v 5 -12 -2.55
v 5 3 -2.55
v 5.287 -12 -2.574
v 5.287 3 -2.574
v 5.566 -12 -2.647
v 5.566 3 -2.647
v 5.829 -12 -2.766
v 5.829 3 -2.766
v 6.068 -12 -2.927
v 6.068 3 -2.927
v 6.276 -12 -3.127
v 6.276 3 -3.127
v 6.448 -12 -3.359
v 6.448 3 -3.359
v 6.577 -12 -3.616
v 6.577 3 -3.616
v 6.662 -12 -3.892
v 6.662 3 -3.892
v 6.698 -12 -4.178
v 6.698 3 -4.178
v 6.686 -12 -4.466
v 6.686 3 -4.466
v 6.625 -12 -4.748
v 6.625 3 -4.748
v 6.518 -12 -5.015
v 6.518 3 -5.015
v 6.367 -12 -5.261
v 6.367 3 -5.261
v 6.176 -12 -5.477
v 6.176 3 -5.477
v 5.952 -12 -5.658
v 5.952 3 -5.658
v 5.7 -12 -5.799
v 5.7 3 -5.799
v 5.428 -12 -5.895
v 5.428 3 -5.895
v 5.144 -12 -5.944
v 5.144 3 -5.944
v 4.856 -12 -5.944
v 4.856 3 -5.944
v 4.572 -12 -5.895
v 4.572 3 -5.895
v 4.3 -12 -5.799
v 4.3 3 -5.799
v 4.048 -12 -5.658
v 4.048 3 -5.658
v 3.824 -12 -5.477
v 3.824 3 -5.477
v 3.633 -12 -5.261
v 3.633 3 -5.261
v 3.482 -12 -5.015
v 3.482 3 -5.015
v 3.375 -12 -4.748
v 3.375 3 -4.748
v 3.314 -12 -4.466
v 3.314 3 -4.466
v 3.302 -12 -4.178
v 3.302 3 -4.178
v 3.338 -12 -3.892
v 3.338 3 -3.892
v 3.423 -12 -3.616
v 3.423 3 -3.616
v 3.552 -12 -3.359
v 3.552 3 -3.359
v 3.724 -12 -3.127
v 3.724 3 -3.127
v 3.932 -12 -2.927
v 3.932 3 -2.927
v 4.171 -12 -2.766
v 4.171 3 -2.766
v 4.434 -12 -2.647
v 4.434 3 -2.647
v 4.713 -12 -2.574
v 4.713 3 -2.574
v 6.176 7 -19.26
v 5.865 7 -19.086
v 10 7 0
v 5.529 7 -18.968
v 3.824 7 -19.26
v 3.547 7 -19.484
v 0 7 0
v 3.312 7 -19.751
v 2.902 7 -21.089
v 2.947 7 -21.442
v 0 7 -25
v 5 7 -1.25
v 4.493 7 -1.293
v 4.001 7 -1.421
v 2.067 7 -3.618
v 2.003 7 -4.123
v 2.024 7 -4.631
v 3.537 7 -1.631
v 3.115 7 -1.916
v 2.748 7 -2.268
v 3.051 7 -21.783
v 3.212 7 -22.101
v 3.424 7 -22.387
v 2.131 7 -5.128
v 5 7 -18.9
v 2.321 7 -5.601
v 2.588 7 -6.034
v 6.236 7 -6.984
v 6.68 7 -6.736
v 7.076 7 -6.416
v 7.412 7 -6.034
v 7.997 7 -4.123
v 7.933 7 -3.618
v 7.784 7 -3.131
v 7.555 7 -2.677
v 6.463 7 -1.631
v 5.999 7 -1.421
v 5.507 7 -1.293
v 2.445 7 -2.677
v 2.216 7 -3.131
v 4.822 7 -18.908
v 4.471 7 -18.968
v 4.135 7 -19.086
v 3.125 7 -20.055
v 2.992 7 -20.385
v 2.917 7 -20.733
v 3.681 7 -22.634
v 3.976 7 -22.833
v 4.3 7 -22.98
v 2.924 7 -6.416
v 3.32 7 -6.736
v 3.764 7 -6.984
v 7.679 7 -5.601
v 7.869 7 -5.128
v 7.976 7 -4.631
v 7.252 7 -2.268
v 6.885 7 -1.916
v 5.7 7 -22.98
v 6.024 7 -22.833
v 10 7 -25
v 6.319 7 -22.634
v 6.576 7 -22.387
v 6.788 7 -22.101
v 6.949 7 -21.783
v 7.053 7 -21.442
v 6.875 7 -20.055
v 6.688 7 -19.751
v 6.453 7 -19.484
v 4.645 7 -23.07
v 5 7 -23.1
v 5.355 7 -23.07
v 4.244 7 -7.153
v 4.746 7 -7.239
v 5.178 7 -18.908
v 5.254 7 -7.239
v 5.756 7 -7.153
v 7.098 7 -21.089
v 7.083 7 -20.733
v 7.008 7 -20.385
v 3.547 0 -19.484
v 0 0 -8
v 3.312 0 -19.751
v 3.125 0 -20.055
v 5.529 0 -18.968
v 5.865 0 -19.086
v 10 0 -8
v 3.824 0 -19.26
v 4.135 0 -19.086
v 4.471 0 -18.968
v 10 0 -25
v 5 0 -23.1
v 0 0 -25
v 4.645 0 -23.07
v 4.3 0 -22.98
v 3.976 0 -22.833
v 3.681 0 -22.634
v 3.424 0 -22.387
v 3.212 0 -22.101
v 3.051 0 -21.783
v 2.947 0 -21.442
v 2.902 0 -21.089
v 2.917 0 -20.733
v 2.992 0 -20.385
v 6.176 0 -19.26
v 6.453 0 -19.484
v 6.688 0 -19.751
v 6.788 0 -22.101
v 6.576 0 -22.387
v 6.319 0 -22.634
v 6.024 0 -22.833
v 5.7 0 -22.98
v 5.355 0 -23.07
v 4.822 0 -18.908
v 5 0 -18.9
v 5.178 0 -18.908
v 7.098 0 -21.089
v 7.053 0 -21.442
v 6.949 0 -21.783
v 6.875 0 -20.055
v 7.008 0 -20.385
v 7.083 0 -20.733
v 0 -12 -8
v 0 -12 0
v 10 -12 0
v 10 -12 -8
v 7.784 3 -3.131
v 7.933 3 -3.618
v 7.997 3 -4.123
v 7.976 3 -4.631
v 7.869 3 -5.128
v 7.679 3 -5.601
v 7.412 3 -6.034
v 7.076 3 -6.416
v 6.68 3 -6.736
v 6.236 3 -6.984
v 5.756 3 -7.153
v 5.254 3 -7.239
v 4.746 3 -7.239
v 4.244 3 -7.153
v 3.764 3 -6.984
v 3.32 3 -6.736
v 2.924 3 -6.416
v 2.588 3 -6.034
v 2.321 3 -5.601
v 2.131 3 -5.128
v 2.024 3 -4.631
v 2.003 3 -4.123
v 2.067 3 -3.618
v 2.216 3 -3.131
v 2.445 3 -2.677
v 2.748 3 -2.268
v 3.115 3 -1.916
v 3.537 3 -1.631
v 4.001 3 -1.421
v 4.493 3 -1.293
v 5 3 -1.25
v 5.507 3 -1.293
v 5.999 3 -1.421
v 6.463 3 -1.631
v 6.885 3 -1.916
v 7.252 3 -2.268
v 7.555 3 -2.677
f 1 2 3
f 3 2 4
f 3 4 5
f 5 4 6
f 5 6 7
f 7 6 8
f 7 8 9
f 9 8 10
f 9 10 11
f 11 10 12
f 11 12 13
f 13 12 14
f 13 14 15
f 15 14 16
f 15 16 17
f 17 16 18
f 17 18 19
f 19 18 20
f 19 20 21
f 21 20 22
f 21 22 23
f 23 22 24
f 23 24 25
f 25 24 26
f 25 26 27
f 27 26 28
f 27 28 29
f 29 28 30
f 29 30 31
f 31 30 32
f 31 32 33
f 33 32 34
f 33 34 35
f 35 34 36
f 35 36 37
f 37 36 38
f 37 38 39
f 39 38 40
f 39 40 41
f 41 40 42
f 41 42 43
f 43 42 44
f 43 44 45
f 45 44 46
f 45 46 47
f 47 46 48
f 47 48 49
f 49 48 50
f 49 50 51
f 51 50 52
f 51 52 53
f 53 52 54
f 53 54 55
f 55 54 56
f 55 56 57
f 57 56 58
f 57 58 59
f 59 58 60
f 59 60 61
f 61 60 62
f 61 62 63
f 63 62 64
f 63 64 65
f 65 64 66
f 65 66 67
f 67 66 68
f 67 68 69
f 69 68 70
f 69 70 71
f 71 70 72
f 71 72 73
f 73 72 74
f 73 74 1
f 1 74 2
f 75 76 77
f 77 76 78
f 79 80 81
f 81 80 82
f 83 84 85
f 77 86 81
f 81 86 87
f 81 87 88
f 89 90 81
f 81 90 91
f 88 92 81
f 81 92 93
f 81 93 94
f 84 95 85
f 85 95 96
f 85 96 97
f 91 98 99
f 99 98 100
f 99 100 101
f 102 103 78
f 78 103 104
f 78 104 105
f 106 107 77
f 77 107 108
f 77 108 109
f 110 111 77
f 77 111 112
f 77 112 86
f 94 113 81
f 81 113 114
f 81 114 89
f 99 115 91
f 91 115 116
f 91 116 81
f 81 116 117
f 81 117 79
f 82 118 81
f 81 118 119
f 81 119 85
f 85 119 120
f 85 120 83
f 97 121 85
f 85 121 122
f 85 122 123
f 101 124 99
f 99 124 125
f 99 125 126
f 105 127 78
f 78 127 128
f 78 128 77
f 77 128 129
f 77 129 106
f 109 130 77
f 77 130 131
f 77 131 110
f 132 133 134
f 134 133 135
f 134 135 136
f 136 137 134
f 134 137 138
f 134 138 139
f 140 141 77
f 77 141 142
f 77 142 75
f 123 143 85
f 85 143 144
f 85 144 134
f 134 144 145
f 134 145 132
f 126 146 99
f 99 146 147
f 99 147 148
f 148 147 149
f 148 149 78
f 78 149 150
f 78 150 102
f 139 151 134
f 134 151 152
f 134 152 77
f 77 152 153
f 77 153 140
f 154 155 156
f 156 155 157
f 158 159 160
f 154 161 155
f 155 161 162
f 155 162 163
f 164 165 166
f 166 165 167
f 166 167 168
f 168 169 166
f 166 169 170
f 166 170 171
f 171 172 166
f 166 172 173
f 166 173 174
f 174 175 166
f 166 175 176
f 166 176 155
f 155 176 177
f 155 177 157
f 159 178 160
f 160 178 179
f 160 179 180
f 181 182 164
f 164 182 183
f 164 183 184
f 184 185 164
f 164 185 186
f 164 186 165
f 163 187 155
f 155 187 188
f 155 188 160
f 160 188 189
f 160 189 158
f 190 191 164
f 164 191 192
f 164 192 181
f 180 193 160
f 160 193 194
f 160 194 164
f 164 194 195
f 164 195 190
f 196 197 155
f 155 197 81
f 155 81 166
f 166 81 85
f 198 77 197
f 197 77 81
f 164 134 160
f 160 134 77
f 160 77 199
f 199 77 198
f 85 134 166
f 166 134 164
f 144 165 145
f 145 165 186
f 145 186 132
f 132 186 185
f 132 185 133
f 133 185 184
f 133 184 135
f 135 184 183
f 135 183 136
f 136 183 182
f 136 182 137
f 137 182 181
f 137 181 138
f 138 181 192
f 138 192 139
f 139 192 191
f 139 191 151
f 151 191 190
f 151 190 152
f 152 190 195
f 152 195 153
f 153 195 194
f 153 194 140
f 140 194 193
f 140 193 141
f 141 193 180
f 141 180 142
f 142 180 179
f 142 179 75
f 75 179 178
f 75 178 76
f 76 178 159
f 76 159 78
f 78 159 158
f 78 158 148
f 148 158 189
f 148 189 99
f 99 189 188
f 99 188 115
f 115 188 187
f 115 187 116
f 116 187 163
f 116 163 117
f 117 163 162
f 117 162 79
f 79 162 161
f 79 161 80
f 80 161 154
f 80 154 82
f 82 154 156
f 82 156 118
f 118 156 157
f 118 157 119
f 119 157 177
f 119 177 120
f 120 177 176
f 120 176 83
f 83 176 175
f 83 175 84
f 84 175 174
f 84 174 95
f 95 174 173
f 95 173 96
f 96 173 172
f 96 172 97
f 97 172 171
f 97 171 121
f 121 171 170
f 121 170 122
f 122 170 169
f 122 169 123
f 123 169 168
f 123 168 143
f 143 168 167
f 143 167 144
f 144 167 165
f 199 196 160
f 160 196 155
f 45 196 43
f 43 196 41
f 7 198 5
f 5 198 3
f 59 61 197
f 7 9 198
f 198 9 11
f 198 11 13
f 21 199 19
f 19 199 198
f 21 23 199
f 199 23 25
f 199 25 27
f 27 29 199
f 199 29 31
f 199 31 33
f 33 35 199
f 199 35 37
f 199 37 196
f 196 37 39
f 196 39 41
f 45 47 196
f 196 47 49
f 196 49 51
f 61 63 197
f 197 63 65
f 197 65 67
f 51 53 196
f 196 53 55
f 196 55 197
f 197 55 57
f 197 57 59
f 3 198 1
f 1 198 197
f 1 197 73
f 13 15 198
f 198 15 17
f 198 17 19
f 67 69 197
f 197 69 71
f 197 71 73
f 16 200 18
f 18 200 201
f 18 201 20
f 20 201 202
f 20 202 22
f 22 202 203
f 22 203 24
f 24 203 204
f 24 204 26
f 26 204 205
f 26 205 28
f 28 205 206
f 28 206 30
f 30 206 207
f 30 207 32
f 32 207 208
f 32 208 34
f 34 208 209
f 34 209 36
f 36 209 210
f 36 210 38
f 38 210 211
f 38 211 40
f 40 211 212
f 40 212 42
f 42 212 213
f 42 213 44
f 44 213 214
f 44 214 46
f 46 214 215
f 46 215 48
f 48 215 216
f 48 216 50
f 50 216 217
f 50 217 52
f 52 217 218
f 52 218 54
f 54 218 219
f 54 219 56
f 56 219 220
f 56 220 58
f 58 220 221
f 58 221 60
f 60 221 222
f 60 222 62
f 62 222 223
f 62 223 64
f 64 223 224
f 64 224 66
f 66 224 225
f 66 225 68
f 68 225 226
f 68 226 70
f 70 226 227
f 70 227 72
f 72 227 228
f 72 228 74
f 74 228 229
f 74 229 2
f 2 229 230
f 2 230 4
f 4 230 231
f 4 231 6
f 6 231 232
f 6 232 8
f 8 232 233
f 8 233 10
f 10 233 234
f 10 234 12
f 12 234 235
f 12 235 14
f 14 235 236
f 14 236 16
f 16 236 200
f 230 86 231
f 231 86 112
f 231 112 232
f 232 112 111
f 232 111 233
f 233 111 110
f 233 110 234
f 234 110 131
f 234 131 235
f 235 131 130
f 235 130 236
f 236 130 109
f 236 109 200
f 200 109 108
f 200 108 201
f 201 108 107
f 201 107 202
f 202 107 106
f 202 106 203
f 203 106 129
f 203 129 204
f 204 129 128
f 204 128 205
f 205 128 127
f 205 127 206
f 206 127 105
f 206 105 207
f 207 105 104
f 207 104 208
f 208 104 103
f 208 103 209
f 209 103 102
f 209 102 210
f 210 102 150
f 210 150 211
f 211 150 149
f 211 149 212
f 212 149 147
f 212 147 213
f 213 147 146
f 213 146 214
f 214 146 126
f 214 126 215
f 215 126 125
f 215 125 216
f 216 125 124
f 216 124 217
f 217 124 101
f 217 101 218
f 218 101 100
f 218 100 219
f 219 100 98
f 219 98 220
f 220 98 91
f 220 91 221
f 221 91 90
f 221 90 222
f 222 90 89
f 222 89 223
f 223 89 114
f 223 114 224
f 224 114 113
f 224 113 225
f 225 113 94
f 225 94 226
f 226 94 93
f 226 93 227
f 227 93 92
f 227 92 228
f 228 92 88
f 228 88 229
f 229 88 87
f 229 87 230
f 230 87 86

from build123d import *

# Parameters (mm, degrees)
SKETCH1_W           = 10
SKETCH1_H           = 25
SKETCH1_R           = 2.1
BOSS_EXTRUDE1_DEPTH = 7
SKETCH2_W           = 10
SKETCH2_H           = 8
BOSS_EXTRUDE2_DEPTH = 12
SKETCH3_R           = 1.7
CUT_EXTRUDE1_DEPTH  = 33.954514107
SKETCH4_R           = 3
CUT_EXTRUDE2_DEPTH  = 4


with BuildPart() as part:
    # Sketch1 → Boss-Extrude1 (new body)
    with BuildSketch(Plane(origin=(0, 0, 0), x_dir=(1, 0, 0), z_dir=(0, 1, 0))):
        with Locations((5, 12.5)):
            Rectangle(SKETCH1_W, SKETCH1_H)
        with Locations(Location((5, 21, 0), (0, 0, 270))):
            Circle(SKETCH1_R, mode=Mode.SUBTRACT)
    extrude(amount=BOSS_EXTRUDE1_DEPTH)

    # Sketch2 → Boss-Extrude2 (add)
    with BuildSketch(Plane(origin=(0, 0, 0), x_dir=(-1, 0, 0), z_dir=(0, -1, 0))):
        with Locations((-5, 4)):
            Rectangle(SKETCH2_W, SKETCH2_H)
    extrude(amount=BOSS_EXTRUDE2_DEPTH)

    # Sketch3 → Cut-Extrude1 (cut, through all)
    with BuildSketch(Plane(origin=(0, 7, 0), x_dir=(1, 0, 0), z_dir=(0, 1, 0))):
        with Locations(Location((5, 4.25, 0), (0, 0, 270))):
            Circle(SKETCH3_R)
    extrude(amount=-CUT_EXTRUDE1_DEPTH, mode=Mode.SUBTRACT)

    # Sketch4 → Cut-Extrude2 (cut)
    with BuildSketch(Plane(origin=(0, 7, 0), x_dir=(1, 0, 0), z_dir=(0, 1, 0))):
        with Locations(Location((5, 4.25, 0), (0, 0, 270))):
            Circle(SKETCH4_R)
    extrude(amount=-CUT_EXTRUDE2_DEPTH, mode=Mode.SUBTRACT)


solid = part.part
